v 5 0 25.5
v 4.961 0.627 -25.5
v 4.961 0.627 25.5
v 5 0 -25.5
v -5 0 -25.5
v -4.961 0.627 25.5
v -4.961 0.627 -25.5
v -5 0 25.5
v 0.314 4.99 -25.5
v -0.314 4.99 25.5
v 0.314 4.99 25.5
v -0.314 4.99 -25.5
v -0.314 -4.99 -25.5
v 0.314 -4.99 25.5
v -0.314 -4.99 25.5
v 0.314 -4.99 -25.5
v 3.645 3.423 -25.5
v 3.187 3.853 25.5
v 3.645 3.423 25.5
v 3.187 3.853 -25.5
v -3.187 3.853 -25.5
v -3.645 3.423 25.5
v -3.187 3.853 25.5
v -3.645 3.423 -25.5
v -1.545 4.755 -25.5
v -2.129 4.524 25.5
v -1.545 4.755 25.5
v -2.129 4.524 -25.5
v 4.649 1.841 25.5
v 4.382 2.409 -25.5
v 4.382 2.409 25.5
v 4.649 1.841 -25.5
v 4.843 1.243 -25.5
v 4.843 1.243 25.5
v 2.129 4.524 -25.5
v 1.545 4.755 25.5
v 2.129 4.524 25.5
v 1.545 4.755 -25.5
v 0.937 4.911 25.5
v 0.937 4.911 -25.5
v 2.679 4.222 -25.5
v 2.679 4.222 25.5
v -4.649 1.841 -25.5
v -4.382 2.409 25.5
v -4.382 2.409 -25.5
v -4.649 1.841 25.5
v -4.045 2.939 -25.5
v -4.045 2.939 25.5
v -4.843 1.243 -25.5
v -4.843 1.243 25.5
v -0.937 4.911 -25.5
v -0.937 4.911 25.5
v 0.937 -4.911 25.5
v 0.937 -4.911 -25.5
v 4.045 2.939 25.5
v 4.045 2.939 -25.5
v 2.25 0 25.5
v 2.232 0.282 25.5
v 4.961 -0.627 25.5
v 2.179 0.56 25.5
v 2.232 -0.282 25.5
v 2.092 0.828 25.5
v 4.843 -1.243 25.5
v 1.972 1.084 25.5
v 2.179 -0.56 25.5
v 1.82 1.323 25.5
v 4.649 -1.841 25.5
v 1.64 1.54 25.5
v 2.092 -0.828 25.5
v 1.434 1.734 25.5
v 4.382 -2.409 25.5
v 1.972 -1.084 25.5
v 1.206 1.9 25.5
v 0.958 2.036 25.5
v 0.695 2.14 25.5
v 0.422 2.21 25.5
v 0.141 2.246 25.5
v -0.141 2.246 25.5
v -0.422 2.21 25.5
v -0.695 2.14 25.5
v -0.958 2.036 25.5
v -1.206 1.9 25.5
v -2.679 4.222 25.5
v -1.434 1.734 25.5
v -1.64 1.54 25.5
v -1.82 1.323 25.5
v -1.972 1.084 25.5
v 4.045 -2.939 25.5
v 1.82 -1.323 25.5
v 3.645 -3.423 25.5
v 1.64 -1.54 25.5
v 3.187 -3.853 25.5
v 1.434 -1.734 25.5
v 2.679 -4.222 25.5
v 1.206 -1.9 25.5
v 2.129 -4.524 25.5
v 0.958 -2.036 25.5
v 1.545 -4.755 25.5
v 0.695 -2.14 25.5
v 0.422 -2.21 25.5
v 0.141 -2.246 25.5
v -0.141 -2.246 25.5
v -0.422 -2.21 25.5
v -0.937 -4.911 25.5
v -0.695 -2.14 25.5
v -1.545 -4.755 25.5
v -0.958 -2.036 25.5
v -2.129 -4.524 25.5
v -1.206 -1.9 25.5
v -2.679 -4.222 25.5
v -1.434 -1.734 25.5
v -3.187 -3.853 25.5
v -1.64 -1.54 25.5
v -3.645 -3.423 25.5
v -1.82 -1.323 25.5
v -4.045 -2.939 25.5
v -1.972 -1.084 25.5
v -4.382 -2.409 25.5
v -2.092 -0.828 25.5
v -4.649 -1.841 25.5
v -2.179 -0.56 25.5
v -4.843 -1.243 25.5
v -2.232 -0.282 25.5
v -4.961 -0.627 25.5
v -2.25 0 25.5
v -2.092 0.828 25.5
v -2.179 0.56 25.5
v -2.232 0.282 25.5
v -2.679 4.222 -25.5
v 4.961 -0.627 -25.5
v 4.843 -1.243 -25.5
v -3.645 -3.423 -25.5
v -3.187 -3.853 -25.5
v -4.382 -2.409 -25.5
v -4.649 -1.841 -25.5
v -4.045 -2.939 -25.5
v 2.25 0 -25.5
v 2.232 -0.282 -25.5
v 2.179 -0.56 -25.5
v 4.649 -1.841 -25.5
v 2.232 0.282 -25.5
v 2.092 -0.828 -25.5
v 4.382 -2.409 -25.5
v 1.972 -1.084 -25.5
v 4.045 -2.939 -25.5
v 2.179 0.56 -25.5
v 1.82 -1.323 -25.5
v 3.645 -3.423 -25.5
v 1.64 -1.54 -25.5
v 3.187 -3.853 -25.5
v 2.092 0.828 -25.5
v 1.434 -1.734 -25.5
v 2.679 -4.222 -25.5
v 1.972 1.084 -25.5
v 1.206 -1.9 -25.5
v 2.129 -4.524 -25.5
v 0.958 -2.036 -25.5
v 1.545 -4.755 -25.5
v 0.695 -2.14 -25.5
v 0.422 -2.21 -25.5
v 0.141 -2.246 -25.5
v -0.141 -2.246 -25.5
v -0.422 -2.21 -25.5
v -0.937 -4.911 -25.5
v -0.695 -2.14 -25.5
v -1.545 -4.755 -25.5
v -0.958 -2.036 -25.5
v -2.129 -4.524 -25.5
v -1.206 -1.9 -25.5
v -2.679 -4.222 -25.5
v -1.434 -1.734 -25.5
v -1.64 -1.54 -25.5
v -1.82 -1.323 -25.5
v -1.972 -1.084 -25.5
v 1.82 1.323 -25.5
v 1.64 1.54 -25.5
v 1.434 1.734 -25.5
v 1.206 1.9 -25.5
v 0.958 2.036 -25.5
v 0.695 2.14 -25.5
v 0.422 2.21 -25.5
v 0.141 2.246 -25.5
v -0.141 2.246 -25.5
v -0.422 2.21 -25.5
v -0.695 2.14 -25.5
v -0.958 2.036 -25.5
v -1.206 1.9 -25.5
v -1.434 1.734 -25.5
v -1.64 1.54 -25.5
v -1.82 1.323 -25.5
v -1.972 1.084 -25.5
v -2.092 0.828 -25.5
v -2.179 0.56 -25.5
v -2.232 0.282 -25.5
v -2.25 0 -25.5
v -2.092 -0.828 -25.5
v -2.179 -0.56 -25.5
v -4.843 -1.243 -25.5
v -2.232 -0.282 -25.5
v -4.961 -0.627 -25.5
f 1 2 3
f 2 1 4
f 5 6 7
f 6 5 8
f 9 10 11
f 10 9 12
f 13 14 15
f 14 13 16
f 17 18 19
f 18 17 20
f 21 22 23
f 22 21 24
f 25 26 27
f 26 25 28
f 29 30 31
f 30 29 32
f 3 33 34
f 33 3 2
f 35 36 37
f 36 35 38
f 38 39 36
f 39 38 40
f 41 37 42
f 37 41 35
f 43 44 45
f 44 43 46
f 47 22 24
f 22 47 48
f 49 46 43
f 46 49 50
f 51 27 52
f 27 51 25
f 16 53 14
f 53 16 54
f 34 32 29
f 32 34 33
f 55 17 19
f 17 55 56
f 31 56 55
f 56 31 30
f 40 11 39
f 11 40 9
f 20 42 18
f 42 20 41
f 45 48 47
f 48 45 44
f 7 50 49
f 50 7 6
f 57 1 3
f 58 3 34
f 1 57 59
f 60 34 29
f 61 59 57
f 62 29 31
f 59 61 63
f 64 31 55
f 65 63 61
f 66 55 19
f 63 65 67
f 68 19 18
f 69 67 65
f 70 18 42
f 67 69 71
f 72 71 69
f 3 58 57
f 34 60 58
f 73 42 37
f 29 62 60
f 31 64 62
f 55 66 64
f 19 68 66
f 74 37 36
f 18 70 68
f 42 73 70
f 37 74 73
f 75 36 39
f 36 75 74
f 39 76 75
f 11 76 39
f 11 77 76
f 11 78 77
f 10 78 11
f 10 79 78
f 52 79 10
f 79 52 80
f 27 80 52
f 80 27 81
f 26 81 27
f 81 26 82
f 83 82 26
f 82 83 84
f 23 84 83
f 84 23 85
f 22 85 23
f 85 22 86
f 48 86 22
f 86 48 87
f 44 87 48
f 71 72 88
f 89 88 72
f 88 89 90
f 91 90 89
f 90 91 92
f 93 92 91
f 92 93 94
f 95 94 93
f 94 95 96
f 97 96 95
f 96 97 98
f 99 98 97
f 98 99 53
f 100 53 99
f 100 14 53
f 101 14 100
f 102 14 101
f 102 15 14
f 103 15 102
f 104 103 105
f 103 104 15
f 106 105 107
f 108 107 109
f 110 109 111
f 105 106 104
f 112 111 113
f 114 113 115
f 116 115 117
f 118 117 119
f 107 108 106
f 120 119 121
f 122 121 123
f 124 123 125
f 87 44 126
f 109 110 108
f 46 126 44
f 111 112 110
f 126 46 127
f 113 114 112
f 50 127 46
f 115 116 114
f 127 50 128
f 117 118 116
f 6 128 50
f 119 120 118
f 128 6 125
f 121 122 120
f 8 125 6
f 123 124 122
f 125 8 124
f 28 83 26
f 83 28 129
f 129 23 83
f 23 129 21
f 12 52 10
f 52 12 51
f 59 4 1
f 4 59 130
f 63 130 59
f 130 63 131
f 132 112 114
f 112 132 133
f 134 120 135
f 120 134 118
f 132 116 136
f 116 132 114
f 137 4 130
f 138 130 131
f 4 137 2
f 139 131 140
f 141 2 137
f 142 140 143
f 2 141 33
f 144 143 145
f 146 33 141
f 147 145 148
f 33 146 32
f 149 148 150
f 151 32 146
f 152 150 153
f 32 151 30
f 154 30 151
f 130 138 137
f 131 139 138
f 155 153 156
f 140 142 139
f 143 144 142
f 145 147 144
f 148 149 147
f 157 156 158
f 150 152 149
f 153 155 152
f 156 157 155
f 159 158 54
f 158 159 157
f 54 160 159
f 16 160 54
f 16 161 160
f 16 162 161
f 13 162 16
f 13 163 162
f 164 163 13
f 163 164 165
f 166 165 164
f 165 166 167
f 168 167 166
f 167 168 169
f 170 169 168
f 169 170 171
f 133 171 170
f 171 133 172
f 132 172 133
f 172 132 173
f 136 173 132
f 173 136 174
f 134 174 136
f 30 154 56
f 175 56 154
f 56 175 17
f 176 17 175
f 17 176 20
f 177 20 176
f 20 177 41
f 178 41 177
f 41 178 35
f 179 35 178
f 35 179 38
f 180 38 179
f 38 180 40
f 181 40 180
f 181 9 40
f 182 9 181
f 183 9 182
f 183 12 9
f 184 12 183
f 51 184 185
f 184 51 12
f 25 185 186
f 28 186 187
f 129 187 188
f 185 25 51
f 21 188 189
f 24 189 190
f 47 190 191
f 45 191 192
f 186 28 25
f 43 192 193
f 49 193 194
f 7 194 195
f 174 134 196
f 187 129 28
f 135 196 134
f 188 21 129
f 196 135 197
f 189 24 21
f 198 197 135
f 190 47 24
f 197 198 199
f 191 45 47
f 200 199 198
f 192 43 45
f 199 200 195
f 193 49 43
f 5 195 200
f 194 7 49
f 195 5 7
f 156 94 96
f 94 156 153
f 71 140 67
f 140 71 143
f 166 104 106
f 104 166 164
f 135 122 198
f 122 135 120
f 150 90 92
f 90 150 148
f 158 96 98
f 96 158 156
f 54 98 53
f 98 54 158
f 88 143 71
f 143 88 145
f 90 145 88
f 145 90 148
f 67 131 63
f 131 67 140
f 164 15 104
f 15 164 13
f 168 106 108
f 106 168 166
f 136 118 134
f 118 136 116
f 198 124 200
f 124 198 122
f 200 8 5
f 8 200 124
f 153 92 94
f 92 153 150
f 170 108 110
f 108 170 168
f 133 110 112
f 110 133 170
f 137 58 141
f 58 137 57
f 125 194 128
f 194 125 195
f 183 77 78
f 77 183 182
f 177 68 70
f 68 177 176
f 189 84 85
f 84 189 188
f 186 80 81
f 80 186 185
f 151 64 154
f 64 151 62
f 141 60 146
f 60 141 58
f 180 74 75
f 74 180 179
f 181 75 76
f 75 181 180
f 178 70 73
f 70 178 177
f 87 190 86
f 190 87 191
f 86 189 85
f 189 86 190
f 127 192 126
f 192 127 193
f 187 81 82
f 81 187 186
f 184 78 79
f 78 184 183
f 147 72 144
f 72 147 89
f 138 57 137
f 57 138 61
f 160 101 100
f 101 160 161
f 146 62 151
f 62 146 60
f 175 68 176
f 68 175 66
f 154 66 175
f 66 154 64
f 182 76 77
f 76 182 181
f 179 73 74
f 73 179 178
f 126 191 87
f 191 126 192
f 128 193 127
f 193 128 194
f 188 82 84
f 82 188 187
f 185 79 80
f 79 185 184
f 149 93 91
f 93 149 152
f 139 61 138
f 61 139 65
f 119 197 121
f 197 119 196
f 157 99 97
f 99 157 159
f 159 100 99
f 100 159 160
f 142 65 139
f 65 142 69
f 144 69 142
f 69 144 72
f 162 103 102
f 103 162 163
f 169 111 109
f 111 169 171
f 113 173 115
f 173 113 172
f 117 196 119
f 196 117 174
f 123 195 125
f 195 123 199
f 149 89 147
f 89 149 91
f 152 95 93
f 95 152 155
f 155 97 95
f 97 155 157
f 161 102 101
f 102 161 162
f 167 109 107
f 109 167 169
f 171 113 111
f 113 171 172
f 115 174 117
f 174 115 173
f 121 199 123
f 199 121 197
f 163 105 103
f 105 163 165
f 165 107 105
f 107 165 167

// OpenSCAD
$fn = 50;


difference() {
	union() {
		translate(v = [0, 0, -25.5000000000]) {
			cylinder(h = 51, r = 5.0000000000);
		}
	}
	union() {
		translate(v = [0, 0, -100.0000000000]) {
			cylinder(h = 200, r = 2.2500000000);
		}
	}
}
